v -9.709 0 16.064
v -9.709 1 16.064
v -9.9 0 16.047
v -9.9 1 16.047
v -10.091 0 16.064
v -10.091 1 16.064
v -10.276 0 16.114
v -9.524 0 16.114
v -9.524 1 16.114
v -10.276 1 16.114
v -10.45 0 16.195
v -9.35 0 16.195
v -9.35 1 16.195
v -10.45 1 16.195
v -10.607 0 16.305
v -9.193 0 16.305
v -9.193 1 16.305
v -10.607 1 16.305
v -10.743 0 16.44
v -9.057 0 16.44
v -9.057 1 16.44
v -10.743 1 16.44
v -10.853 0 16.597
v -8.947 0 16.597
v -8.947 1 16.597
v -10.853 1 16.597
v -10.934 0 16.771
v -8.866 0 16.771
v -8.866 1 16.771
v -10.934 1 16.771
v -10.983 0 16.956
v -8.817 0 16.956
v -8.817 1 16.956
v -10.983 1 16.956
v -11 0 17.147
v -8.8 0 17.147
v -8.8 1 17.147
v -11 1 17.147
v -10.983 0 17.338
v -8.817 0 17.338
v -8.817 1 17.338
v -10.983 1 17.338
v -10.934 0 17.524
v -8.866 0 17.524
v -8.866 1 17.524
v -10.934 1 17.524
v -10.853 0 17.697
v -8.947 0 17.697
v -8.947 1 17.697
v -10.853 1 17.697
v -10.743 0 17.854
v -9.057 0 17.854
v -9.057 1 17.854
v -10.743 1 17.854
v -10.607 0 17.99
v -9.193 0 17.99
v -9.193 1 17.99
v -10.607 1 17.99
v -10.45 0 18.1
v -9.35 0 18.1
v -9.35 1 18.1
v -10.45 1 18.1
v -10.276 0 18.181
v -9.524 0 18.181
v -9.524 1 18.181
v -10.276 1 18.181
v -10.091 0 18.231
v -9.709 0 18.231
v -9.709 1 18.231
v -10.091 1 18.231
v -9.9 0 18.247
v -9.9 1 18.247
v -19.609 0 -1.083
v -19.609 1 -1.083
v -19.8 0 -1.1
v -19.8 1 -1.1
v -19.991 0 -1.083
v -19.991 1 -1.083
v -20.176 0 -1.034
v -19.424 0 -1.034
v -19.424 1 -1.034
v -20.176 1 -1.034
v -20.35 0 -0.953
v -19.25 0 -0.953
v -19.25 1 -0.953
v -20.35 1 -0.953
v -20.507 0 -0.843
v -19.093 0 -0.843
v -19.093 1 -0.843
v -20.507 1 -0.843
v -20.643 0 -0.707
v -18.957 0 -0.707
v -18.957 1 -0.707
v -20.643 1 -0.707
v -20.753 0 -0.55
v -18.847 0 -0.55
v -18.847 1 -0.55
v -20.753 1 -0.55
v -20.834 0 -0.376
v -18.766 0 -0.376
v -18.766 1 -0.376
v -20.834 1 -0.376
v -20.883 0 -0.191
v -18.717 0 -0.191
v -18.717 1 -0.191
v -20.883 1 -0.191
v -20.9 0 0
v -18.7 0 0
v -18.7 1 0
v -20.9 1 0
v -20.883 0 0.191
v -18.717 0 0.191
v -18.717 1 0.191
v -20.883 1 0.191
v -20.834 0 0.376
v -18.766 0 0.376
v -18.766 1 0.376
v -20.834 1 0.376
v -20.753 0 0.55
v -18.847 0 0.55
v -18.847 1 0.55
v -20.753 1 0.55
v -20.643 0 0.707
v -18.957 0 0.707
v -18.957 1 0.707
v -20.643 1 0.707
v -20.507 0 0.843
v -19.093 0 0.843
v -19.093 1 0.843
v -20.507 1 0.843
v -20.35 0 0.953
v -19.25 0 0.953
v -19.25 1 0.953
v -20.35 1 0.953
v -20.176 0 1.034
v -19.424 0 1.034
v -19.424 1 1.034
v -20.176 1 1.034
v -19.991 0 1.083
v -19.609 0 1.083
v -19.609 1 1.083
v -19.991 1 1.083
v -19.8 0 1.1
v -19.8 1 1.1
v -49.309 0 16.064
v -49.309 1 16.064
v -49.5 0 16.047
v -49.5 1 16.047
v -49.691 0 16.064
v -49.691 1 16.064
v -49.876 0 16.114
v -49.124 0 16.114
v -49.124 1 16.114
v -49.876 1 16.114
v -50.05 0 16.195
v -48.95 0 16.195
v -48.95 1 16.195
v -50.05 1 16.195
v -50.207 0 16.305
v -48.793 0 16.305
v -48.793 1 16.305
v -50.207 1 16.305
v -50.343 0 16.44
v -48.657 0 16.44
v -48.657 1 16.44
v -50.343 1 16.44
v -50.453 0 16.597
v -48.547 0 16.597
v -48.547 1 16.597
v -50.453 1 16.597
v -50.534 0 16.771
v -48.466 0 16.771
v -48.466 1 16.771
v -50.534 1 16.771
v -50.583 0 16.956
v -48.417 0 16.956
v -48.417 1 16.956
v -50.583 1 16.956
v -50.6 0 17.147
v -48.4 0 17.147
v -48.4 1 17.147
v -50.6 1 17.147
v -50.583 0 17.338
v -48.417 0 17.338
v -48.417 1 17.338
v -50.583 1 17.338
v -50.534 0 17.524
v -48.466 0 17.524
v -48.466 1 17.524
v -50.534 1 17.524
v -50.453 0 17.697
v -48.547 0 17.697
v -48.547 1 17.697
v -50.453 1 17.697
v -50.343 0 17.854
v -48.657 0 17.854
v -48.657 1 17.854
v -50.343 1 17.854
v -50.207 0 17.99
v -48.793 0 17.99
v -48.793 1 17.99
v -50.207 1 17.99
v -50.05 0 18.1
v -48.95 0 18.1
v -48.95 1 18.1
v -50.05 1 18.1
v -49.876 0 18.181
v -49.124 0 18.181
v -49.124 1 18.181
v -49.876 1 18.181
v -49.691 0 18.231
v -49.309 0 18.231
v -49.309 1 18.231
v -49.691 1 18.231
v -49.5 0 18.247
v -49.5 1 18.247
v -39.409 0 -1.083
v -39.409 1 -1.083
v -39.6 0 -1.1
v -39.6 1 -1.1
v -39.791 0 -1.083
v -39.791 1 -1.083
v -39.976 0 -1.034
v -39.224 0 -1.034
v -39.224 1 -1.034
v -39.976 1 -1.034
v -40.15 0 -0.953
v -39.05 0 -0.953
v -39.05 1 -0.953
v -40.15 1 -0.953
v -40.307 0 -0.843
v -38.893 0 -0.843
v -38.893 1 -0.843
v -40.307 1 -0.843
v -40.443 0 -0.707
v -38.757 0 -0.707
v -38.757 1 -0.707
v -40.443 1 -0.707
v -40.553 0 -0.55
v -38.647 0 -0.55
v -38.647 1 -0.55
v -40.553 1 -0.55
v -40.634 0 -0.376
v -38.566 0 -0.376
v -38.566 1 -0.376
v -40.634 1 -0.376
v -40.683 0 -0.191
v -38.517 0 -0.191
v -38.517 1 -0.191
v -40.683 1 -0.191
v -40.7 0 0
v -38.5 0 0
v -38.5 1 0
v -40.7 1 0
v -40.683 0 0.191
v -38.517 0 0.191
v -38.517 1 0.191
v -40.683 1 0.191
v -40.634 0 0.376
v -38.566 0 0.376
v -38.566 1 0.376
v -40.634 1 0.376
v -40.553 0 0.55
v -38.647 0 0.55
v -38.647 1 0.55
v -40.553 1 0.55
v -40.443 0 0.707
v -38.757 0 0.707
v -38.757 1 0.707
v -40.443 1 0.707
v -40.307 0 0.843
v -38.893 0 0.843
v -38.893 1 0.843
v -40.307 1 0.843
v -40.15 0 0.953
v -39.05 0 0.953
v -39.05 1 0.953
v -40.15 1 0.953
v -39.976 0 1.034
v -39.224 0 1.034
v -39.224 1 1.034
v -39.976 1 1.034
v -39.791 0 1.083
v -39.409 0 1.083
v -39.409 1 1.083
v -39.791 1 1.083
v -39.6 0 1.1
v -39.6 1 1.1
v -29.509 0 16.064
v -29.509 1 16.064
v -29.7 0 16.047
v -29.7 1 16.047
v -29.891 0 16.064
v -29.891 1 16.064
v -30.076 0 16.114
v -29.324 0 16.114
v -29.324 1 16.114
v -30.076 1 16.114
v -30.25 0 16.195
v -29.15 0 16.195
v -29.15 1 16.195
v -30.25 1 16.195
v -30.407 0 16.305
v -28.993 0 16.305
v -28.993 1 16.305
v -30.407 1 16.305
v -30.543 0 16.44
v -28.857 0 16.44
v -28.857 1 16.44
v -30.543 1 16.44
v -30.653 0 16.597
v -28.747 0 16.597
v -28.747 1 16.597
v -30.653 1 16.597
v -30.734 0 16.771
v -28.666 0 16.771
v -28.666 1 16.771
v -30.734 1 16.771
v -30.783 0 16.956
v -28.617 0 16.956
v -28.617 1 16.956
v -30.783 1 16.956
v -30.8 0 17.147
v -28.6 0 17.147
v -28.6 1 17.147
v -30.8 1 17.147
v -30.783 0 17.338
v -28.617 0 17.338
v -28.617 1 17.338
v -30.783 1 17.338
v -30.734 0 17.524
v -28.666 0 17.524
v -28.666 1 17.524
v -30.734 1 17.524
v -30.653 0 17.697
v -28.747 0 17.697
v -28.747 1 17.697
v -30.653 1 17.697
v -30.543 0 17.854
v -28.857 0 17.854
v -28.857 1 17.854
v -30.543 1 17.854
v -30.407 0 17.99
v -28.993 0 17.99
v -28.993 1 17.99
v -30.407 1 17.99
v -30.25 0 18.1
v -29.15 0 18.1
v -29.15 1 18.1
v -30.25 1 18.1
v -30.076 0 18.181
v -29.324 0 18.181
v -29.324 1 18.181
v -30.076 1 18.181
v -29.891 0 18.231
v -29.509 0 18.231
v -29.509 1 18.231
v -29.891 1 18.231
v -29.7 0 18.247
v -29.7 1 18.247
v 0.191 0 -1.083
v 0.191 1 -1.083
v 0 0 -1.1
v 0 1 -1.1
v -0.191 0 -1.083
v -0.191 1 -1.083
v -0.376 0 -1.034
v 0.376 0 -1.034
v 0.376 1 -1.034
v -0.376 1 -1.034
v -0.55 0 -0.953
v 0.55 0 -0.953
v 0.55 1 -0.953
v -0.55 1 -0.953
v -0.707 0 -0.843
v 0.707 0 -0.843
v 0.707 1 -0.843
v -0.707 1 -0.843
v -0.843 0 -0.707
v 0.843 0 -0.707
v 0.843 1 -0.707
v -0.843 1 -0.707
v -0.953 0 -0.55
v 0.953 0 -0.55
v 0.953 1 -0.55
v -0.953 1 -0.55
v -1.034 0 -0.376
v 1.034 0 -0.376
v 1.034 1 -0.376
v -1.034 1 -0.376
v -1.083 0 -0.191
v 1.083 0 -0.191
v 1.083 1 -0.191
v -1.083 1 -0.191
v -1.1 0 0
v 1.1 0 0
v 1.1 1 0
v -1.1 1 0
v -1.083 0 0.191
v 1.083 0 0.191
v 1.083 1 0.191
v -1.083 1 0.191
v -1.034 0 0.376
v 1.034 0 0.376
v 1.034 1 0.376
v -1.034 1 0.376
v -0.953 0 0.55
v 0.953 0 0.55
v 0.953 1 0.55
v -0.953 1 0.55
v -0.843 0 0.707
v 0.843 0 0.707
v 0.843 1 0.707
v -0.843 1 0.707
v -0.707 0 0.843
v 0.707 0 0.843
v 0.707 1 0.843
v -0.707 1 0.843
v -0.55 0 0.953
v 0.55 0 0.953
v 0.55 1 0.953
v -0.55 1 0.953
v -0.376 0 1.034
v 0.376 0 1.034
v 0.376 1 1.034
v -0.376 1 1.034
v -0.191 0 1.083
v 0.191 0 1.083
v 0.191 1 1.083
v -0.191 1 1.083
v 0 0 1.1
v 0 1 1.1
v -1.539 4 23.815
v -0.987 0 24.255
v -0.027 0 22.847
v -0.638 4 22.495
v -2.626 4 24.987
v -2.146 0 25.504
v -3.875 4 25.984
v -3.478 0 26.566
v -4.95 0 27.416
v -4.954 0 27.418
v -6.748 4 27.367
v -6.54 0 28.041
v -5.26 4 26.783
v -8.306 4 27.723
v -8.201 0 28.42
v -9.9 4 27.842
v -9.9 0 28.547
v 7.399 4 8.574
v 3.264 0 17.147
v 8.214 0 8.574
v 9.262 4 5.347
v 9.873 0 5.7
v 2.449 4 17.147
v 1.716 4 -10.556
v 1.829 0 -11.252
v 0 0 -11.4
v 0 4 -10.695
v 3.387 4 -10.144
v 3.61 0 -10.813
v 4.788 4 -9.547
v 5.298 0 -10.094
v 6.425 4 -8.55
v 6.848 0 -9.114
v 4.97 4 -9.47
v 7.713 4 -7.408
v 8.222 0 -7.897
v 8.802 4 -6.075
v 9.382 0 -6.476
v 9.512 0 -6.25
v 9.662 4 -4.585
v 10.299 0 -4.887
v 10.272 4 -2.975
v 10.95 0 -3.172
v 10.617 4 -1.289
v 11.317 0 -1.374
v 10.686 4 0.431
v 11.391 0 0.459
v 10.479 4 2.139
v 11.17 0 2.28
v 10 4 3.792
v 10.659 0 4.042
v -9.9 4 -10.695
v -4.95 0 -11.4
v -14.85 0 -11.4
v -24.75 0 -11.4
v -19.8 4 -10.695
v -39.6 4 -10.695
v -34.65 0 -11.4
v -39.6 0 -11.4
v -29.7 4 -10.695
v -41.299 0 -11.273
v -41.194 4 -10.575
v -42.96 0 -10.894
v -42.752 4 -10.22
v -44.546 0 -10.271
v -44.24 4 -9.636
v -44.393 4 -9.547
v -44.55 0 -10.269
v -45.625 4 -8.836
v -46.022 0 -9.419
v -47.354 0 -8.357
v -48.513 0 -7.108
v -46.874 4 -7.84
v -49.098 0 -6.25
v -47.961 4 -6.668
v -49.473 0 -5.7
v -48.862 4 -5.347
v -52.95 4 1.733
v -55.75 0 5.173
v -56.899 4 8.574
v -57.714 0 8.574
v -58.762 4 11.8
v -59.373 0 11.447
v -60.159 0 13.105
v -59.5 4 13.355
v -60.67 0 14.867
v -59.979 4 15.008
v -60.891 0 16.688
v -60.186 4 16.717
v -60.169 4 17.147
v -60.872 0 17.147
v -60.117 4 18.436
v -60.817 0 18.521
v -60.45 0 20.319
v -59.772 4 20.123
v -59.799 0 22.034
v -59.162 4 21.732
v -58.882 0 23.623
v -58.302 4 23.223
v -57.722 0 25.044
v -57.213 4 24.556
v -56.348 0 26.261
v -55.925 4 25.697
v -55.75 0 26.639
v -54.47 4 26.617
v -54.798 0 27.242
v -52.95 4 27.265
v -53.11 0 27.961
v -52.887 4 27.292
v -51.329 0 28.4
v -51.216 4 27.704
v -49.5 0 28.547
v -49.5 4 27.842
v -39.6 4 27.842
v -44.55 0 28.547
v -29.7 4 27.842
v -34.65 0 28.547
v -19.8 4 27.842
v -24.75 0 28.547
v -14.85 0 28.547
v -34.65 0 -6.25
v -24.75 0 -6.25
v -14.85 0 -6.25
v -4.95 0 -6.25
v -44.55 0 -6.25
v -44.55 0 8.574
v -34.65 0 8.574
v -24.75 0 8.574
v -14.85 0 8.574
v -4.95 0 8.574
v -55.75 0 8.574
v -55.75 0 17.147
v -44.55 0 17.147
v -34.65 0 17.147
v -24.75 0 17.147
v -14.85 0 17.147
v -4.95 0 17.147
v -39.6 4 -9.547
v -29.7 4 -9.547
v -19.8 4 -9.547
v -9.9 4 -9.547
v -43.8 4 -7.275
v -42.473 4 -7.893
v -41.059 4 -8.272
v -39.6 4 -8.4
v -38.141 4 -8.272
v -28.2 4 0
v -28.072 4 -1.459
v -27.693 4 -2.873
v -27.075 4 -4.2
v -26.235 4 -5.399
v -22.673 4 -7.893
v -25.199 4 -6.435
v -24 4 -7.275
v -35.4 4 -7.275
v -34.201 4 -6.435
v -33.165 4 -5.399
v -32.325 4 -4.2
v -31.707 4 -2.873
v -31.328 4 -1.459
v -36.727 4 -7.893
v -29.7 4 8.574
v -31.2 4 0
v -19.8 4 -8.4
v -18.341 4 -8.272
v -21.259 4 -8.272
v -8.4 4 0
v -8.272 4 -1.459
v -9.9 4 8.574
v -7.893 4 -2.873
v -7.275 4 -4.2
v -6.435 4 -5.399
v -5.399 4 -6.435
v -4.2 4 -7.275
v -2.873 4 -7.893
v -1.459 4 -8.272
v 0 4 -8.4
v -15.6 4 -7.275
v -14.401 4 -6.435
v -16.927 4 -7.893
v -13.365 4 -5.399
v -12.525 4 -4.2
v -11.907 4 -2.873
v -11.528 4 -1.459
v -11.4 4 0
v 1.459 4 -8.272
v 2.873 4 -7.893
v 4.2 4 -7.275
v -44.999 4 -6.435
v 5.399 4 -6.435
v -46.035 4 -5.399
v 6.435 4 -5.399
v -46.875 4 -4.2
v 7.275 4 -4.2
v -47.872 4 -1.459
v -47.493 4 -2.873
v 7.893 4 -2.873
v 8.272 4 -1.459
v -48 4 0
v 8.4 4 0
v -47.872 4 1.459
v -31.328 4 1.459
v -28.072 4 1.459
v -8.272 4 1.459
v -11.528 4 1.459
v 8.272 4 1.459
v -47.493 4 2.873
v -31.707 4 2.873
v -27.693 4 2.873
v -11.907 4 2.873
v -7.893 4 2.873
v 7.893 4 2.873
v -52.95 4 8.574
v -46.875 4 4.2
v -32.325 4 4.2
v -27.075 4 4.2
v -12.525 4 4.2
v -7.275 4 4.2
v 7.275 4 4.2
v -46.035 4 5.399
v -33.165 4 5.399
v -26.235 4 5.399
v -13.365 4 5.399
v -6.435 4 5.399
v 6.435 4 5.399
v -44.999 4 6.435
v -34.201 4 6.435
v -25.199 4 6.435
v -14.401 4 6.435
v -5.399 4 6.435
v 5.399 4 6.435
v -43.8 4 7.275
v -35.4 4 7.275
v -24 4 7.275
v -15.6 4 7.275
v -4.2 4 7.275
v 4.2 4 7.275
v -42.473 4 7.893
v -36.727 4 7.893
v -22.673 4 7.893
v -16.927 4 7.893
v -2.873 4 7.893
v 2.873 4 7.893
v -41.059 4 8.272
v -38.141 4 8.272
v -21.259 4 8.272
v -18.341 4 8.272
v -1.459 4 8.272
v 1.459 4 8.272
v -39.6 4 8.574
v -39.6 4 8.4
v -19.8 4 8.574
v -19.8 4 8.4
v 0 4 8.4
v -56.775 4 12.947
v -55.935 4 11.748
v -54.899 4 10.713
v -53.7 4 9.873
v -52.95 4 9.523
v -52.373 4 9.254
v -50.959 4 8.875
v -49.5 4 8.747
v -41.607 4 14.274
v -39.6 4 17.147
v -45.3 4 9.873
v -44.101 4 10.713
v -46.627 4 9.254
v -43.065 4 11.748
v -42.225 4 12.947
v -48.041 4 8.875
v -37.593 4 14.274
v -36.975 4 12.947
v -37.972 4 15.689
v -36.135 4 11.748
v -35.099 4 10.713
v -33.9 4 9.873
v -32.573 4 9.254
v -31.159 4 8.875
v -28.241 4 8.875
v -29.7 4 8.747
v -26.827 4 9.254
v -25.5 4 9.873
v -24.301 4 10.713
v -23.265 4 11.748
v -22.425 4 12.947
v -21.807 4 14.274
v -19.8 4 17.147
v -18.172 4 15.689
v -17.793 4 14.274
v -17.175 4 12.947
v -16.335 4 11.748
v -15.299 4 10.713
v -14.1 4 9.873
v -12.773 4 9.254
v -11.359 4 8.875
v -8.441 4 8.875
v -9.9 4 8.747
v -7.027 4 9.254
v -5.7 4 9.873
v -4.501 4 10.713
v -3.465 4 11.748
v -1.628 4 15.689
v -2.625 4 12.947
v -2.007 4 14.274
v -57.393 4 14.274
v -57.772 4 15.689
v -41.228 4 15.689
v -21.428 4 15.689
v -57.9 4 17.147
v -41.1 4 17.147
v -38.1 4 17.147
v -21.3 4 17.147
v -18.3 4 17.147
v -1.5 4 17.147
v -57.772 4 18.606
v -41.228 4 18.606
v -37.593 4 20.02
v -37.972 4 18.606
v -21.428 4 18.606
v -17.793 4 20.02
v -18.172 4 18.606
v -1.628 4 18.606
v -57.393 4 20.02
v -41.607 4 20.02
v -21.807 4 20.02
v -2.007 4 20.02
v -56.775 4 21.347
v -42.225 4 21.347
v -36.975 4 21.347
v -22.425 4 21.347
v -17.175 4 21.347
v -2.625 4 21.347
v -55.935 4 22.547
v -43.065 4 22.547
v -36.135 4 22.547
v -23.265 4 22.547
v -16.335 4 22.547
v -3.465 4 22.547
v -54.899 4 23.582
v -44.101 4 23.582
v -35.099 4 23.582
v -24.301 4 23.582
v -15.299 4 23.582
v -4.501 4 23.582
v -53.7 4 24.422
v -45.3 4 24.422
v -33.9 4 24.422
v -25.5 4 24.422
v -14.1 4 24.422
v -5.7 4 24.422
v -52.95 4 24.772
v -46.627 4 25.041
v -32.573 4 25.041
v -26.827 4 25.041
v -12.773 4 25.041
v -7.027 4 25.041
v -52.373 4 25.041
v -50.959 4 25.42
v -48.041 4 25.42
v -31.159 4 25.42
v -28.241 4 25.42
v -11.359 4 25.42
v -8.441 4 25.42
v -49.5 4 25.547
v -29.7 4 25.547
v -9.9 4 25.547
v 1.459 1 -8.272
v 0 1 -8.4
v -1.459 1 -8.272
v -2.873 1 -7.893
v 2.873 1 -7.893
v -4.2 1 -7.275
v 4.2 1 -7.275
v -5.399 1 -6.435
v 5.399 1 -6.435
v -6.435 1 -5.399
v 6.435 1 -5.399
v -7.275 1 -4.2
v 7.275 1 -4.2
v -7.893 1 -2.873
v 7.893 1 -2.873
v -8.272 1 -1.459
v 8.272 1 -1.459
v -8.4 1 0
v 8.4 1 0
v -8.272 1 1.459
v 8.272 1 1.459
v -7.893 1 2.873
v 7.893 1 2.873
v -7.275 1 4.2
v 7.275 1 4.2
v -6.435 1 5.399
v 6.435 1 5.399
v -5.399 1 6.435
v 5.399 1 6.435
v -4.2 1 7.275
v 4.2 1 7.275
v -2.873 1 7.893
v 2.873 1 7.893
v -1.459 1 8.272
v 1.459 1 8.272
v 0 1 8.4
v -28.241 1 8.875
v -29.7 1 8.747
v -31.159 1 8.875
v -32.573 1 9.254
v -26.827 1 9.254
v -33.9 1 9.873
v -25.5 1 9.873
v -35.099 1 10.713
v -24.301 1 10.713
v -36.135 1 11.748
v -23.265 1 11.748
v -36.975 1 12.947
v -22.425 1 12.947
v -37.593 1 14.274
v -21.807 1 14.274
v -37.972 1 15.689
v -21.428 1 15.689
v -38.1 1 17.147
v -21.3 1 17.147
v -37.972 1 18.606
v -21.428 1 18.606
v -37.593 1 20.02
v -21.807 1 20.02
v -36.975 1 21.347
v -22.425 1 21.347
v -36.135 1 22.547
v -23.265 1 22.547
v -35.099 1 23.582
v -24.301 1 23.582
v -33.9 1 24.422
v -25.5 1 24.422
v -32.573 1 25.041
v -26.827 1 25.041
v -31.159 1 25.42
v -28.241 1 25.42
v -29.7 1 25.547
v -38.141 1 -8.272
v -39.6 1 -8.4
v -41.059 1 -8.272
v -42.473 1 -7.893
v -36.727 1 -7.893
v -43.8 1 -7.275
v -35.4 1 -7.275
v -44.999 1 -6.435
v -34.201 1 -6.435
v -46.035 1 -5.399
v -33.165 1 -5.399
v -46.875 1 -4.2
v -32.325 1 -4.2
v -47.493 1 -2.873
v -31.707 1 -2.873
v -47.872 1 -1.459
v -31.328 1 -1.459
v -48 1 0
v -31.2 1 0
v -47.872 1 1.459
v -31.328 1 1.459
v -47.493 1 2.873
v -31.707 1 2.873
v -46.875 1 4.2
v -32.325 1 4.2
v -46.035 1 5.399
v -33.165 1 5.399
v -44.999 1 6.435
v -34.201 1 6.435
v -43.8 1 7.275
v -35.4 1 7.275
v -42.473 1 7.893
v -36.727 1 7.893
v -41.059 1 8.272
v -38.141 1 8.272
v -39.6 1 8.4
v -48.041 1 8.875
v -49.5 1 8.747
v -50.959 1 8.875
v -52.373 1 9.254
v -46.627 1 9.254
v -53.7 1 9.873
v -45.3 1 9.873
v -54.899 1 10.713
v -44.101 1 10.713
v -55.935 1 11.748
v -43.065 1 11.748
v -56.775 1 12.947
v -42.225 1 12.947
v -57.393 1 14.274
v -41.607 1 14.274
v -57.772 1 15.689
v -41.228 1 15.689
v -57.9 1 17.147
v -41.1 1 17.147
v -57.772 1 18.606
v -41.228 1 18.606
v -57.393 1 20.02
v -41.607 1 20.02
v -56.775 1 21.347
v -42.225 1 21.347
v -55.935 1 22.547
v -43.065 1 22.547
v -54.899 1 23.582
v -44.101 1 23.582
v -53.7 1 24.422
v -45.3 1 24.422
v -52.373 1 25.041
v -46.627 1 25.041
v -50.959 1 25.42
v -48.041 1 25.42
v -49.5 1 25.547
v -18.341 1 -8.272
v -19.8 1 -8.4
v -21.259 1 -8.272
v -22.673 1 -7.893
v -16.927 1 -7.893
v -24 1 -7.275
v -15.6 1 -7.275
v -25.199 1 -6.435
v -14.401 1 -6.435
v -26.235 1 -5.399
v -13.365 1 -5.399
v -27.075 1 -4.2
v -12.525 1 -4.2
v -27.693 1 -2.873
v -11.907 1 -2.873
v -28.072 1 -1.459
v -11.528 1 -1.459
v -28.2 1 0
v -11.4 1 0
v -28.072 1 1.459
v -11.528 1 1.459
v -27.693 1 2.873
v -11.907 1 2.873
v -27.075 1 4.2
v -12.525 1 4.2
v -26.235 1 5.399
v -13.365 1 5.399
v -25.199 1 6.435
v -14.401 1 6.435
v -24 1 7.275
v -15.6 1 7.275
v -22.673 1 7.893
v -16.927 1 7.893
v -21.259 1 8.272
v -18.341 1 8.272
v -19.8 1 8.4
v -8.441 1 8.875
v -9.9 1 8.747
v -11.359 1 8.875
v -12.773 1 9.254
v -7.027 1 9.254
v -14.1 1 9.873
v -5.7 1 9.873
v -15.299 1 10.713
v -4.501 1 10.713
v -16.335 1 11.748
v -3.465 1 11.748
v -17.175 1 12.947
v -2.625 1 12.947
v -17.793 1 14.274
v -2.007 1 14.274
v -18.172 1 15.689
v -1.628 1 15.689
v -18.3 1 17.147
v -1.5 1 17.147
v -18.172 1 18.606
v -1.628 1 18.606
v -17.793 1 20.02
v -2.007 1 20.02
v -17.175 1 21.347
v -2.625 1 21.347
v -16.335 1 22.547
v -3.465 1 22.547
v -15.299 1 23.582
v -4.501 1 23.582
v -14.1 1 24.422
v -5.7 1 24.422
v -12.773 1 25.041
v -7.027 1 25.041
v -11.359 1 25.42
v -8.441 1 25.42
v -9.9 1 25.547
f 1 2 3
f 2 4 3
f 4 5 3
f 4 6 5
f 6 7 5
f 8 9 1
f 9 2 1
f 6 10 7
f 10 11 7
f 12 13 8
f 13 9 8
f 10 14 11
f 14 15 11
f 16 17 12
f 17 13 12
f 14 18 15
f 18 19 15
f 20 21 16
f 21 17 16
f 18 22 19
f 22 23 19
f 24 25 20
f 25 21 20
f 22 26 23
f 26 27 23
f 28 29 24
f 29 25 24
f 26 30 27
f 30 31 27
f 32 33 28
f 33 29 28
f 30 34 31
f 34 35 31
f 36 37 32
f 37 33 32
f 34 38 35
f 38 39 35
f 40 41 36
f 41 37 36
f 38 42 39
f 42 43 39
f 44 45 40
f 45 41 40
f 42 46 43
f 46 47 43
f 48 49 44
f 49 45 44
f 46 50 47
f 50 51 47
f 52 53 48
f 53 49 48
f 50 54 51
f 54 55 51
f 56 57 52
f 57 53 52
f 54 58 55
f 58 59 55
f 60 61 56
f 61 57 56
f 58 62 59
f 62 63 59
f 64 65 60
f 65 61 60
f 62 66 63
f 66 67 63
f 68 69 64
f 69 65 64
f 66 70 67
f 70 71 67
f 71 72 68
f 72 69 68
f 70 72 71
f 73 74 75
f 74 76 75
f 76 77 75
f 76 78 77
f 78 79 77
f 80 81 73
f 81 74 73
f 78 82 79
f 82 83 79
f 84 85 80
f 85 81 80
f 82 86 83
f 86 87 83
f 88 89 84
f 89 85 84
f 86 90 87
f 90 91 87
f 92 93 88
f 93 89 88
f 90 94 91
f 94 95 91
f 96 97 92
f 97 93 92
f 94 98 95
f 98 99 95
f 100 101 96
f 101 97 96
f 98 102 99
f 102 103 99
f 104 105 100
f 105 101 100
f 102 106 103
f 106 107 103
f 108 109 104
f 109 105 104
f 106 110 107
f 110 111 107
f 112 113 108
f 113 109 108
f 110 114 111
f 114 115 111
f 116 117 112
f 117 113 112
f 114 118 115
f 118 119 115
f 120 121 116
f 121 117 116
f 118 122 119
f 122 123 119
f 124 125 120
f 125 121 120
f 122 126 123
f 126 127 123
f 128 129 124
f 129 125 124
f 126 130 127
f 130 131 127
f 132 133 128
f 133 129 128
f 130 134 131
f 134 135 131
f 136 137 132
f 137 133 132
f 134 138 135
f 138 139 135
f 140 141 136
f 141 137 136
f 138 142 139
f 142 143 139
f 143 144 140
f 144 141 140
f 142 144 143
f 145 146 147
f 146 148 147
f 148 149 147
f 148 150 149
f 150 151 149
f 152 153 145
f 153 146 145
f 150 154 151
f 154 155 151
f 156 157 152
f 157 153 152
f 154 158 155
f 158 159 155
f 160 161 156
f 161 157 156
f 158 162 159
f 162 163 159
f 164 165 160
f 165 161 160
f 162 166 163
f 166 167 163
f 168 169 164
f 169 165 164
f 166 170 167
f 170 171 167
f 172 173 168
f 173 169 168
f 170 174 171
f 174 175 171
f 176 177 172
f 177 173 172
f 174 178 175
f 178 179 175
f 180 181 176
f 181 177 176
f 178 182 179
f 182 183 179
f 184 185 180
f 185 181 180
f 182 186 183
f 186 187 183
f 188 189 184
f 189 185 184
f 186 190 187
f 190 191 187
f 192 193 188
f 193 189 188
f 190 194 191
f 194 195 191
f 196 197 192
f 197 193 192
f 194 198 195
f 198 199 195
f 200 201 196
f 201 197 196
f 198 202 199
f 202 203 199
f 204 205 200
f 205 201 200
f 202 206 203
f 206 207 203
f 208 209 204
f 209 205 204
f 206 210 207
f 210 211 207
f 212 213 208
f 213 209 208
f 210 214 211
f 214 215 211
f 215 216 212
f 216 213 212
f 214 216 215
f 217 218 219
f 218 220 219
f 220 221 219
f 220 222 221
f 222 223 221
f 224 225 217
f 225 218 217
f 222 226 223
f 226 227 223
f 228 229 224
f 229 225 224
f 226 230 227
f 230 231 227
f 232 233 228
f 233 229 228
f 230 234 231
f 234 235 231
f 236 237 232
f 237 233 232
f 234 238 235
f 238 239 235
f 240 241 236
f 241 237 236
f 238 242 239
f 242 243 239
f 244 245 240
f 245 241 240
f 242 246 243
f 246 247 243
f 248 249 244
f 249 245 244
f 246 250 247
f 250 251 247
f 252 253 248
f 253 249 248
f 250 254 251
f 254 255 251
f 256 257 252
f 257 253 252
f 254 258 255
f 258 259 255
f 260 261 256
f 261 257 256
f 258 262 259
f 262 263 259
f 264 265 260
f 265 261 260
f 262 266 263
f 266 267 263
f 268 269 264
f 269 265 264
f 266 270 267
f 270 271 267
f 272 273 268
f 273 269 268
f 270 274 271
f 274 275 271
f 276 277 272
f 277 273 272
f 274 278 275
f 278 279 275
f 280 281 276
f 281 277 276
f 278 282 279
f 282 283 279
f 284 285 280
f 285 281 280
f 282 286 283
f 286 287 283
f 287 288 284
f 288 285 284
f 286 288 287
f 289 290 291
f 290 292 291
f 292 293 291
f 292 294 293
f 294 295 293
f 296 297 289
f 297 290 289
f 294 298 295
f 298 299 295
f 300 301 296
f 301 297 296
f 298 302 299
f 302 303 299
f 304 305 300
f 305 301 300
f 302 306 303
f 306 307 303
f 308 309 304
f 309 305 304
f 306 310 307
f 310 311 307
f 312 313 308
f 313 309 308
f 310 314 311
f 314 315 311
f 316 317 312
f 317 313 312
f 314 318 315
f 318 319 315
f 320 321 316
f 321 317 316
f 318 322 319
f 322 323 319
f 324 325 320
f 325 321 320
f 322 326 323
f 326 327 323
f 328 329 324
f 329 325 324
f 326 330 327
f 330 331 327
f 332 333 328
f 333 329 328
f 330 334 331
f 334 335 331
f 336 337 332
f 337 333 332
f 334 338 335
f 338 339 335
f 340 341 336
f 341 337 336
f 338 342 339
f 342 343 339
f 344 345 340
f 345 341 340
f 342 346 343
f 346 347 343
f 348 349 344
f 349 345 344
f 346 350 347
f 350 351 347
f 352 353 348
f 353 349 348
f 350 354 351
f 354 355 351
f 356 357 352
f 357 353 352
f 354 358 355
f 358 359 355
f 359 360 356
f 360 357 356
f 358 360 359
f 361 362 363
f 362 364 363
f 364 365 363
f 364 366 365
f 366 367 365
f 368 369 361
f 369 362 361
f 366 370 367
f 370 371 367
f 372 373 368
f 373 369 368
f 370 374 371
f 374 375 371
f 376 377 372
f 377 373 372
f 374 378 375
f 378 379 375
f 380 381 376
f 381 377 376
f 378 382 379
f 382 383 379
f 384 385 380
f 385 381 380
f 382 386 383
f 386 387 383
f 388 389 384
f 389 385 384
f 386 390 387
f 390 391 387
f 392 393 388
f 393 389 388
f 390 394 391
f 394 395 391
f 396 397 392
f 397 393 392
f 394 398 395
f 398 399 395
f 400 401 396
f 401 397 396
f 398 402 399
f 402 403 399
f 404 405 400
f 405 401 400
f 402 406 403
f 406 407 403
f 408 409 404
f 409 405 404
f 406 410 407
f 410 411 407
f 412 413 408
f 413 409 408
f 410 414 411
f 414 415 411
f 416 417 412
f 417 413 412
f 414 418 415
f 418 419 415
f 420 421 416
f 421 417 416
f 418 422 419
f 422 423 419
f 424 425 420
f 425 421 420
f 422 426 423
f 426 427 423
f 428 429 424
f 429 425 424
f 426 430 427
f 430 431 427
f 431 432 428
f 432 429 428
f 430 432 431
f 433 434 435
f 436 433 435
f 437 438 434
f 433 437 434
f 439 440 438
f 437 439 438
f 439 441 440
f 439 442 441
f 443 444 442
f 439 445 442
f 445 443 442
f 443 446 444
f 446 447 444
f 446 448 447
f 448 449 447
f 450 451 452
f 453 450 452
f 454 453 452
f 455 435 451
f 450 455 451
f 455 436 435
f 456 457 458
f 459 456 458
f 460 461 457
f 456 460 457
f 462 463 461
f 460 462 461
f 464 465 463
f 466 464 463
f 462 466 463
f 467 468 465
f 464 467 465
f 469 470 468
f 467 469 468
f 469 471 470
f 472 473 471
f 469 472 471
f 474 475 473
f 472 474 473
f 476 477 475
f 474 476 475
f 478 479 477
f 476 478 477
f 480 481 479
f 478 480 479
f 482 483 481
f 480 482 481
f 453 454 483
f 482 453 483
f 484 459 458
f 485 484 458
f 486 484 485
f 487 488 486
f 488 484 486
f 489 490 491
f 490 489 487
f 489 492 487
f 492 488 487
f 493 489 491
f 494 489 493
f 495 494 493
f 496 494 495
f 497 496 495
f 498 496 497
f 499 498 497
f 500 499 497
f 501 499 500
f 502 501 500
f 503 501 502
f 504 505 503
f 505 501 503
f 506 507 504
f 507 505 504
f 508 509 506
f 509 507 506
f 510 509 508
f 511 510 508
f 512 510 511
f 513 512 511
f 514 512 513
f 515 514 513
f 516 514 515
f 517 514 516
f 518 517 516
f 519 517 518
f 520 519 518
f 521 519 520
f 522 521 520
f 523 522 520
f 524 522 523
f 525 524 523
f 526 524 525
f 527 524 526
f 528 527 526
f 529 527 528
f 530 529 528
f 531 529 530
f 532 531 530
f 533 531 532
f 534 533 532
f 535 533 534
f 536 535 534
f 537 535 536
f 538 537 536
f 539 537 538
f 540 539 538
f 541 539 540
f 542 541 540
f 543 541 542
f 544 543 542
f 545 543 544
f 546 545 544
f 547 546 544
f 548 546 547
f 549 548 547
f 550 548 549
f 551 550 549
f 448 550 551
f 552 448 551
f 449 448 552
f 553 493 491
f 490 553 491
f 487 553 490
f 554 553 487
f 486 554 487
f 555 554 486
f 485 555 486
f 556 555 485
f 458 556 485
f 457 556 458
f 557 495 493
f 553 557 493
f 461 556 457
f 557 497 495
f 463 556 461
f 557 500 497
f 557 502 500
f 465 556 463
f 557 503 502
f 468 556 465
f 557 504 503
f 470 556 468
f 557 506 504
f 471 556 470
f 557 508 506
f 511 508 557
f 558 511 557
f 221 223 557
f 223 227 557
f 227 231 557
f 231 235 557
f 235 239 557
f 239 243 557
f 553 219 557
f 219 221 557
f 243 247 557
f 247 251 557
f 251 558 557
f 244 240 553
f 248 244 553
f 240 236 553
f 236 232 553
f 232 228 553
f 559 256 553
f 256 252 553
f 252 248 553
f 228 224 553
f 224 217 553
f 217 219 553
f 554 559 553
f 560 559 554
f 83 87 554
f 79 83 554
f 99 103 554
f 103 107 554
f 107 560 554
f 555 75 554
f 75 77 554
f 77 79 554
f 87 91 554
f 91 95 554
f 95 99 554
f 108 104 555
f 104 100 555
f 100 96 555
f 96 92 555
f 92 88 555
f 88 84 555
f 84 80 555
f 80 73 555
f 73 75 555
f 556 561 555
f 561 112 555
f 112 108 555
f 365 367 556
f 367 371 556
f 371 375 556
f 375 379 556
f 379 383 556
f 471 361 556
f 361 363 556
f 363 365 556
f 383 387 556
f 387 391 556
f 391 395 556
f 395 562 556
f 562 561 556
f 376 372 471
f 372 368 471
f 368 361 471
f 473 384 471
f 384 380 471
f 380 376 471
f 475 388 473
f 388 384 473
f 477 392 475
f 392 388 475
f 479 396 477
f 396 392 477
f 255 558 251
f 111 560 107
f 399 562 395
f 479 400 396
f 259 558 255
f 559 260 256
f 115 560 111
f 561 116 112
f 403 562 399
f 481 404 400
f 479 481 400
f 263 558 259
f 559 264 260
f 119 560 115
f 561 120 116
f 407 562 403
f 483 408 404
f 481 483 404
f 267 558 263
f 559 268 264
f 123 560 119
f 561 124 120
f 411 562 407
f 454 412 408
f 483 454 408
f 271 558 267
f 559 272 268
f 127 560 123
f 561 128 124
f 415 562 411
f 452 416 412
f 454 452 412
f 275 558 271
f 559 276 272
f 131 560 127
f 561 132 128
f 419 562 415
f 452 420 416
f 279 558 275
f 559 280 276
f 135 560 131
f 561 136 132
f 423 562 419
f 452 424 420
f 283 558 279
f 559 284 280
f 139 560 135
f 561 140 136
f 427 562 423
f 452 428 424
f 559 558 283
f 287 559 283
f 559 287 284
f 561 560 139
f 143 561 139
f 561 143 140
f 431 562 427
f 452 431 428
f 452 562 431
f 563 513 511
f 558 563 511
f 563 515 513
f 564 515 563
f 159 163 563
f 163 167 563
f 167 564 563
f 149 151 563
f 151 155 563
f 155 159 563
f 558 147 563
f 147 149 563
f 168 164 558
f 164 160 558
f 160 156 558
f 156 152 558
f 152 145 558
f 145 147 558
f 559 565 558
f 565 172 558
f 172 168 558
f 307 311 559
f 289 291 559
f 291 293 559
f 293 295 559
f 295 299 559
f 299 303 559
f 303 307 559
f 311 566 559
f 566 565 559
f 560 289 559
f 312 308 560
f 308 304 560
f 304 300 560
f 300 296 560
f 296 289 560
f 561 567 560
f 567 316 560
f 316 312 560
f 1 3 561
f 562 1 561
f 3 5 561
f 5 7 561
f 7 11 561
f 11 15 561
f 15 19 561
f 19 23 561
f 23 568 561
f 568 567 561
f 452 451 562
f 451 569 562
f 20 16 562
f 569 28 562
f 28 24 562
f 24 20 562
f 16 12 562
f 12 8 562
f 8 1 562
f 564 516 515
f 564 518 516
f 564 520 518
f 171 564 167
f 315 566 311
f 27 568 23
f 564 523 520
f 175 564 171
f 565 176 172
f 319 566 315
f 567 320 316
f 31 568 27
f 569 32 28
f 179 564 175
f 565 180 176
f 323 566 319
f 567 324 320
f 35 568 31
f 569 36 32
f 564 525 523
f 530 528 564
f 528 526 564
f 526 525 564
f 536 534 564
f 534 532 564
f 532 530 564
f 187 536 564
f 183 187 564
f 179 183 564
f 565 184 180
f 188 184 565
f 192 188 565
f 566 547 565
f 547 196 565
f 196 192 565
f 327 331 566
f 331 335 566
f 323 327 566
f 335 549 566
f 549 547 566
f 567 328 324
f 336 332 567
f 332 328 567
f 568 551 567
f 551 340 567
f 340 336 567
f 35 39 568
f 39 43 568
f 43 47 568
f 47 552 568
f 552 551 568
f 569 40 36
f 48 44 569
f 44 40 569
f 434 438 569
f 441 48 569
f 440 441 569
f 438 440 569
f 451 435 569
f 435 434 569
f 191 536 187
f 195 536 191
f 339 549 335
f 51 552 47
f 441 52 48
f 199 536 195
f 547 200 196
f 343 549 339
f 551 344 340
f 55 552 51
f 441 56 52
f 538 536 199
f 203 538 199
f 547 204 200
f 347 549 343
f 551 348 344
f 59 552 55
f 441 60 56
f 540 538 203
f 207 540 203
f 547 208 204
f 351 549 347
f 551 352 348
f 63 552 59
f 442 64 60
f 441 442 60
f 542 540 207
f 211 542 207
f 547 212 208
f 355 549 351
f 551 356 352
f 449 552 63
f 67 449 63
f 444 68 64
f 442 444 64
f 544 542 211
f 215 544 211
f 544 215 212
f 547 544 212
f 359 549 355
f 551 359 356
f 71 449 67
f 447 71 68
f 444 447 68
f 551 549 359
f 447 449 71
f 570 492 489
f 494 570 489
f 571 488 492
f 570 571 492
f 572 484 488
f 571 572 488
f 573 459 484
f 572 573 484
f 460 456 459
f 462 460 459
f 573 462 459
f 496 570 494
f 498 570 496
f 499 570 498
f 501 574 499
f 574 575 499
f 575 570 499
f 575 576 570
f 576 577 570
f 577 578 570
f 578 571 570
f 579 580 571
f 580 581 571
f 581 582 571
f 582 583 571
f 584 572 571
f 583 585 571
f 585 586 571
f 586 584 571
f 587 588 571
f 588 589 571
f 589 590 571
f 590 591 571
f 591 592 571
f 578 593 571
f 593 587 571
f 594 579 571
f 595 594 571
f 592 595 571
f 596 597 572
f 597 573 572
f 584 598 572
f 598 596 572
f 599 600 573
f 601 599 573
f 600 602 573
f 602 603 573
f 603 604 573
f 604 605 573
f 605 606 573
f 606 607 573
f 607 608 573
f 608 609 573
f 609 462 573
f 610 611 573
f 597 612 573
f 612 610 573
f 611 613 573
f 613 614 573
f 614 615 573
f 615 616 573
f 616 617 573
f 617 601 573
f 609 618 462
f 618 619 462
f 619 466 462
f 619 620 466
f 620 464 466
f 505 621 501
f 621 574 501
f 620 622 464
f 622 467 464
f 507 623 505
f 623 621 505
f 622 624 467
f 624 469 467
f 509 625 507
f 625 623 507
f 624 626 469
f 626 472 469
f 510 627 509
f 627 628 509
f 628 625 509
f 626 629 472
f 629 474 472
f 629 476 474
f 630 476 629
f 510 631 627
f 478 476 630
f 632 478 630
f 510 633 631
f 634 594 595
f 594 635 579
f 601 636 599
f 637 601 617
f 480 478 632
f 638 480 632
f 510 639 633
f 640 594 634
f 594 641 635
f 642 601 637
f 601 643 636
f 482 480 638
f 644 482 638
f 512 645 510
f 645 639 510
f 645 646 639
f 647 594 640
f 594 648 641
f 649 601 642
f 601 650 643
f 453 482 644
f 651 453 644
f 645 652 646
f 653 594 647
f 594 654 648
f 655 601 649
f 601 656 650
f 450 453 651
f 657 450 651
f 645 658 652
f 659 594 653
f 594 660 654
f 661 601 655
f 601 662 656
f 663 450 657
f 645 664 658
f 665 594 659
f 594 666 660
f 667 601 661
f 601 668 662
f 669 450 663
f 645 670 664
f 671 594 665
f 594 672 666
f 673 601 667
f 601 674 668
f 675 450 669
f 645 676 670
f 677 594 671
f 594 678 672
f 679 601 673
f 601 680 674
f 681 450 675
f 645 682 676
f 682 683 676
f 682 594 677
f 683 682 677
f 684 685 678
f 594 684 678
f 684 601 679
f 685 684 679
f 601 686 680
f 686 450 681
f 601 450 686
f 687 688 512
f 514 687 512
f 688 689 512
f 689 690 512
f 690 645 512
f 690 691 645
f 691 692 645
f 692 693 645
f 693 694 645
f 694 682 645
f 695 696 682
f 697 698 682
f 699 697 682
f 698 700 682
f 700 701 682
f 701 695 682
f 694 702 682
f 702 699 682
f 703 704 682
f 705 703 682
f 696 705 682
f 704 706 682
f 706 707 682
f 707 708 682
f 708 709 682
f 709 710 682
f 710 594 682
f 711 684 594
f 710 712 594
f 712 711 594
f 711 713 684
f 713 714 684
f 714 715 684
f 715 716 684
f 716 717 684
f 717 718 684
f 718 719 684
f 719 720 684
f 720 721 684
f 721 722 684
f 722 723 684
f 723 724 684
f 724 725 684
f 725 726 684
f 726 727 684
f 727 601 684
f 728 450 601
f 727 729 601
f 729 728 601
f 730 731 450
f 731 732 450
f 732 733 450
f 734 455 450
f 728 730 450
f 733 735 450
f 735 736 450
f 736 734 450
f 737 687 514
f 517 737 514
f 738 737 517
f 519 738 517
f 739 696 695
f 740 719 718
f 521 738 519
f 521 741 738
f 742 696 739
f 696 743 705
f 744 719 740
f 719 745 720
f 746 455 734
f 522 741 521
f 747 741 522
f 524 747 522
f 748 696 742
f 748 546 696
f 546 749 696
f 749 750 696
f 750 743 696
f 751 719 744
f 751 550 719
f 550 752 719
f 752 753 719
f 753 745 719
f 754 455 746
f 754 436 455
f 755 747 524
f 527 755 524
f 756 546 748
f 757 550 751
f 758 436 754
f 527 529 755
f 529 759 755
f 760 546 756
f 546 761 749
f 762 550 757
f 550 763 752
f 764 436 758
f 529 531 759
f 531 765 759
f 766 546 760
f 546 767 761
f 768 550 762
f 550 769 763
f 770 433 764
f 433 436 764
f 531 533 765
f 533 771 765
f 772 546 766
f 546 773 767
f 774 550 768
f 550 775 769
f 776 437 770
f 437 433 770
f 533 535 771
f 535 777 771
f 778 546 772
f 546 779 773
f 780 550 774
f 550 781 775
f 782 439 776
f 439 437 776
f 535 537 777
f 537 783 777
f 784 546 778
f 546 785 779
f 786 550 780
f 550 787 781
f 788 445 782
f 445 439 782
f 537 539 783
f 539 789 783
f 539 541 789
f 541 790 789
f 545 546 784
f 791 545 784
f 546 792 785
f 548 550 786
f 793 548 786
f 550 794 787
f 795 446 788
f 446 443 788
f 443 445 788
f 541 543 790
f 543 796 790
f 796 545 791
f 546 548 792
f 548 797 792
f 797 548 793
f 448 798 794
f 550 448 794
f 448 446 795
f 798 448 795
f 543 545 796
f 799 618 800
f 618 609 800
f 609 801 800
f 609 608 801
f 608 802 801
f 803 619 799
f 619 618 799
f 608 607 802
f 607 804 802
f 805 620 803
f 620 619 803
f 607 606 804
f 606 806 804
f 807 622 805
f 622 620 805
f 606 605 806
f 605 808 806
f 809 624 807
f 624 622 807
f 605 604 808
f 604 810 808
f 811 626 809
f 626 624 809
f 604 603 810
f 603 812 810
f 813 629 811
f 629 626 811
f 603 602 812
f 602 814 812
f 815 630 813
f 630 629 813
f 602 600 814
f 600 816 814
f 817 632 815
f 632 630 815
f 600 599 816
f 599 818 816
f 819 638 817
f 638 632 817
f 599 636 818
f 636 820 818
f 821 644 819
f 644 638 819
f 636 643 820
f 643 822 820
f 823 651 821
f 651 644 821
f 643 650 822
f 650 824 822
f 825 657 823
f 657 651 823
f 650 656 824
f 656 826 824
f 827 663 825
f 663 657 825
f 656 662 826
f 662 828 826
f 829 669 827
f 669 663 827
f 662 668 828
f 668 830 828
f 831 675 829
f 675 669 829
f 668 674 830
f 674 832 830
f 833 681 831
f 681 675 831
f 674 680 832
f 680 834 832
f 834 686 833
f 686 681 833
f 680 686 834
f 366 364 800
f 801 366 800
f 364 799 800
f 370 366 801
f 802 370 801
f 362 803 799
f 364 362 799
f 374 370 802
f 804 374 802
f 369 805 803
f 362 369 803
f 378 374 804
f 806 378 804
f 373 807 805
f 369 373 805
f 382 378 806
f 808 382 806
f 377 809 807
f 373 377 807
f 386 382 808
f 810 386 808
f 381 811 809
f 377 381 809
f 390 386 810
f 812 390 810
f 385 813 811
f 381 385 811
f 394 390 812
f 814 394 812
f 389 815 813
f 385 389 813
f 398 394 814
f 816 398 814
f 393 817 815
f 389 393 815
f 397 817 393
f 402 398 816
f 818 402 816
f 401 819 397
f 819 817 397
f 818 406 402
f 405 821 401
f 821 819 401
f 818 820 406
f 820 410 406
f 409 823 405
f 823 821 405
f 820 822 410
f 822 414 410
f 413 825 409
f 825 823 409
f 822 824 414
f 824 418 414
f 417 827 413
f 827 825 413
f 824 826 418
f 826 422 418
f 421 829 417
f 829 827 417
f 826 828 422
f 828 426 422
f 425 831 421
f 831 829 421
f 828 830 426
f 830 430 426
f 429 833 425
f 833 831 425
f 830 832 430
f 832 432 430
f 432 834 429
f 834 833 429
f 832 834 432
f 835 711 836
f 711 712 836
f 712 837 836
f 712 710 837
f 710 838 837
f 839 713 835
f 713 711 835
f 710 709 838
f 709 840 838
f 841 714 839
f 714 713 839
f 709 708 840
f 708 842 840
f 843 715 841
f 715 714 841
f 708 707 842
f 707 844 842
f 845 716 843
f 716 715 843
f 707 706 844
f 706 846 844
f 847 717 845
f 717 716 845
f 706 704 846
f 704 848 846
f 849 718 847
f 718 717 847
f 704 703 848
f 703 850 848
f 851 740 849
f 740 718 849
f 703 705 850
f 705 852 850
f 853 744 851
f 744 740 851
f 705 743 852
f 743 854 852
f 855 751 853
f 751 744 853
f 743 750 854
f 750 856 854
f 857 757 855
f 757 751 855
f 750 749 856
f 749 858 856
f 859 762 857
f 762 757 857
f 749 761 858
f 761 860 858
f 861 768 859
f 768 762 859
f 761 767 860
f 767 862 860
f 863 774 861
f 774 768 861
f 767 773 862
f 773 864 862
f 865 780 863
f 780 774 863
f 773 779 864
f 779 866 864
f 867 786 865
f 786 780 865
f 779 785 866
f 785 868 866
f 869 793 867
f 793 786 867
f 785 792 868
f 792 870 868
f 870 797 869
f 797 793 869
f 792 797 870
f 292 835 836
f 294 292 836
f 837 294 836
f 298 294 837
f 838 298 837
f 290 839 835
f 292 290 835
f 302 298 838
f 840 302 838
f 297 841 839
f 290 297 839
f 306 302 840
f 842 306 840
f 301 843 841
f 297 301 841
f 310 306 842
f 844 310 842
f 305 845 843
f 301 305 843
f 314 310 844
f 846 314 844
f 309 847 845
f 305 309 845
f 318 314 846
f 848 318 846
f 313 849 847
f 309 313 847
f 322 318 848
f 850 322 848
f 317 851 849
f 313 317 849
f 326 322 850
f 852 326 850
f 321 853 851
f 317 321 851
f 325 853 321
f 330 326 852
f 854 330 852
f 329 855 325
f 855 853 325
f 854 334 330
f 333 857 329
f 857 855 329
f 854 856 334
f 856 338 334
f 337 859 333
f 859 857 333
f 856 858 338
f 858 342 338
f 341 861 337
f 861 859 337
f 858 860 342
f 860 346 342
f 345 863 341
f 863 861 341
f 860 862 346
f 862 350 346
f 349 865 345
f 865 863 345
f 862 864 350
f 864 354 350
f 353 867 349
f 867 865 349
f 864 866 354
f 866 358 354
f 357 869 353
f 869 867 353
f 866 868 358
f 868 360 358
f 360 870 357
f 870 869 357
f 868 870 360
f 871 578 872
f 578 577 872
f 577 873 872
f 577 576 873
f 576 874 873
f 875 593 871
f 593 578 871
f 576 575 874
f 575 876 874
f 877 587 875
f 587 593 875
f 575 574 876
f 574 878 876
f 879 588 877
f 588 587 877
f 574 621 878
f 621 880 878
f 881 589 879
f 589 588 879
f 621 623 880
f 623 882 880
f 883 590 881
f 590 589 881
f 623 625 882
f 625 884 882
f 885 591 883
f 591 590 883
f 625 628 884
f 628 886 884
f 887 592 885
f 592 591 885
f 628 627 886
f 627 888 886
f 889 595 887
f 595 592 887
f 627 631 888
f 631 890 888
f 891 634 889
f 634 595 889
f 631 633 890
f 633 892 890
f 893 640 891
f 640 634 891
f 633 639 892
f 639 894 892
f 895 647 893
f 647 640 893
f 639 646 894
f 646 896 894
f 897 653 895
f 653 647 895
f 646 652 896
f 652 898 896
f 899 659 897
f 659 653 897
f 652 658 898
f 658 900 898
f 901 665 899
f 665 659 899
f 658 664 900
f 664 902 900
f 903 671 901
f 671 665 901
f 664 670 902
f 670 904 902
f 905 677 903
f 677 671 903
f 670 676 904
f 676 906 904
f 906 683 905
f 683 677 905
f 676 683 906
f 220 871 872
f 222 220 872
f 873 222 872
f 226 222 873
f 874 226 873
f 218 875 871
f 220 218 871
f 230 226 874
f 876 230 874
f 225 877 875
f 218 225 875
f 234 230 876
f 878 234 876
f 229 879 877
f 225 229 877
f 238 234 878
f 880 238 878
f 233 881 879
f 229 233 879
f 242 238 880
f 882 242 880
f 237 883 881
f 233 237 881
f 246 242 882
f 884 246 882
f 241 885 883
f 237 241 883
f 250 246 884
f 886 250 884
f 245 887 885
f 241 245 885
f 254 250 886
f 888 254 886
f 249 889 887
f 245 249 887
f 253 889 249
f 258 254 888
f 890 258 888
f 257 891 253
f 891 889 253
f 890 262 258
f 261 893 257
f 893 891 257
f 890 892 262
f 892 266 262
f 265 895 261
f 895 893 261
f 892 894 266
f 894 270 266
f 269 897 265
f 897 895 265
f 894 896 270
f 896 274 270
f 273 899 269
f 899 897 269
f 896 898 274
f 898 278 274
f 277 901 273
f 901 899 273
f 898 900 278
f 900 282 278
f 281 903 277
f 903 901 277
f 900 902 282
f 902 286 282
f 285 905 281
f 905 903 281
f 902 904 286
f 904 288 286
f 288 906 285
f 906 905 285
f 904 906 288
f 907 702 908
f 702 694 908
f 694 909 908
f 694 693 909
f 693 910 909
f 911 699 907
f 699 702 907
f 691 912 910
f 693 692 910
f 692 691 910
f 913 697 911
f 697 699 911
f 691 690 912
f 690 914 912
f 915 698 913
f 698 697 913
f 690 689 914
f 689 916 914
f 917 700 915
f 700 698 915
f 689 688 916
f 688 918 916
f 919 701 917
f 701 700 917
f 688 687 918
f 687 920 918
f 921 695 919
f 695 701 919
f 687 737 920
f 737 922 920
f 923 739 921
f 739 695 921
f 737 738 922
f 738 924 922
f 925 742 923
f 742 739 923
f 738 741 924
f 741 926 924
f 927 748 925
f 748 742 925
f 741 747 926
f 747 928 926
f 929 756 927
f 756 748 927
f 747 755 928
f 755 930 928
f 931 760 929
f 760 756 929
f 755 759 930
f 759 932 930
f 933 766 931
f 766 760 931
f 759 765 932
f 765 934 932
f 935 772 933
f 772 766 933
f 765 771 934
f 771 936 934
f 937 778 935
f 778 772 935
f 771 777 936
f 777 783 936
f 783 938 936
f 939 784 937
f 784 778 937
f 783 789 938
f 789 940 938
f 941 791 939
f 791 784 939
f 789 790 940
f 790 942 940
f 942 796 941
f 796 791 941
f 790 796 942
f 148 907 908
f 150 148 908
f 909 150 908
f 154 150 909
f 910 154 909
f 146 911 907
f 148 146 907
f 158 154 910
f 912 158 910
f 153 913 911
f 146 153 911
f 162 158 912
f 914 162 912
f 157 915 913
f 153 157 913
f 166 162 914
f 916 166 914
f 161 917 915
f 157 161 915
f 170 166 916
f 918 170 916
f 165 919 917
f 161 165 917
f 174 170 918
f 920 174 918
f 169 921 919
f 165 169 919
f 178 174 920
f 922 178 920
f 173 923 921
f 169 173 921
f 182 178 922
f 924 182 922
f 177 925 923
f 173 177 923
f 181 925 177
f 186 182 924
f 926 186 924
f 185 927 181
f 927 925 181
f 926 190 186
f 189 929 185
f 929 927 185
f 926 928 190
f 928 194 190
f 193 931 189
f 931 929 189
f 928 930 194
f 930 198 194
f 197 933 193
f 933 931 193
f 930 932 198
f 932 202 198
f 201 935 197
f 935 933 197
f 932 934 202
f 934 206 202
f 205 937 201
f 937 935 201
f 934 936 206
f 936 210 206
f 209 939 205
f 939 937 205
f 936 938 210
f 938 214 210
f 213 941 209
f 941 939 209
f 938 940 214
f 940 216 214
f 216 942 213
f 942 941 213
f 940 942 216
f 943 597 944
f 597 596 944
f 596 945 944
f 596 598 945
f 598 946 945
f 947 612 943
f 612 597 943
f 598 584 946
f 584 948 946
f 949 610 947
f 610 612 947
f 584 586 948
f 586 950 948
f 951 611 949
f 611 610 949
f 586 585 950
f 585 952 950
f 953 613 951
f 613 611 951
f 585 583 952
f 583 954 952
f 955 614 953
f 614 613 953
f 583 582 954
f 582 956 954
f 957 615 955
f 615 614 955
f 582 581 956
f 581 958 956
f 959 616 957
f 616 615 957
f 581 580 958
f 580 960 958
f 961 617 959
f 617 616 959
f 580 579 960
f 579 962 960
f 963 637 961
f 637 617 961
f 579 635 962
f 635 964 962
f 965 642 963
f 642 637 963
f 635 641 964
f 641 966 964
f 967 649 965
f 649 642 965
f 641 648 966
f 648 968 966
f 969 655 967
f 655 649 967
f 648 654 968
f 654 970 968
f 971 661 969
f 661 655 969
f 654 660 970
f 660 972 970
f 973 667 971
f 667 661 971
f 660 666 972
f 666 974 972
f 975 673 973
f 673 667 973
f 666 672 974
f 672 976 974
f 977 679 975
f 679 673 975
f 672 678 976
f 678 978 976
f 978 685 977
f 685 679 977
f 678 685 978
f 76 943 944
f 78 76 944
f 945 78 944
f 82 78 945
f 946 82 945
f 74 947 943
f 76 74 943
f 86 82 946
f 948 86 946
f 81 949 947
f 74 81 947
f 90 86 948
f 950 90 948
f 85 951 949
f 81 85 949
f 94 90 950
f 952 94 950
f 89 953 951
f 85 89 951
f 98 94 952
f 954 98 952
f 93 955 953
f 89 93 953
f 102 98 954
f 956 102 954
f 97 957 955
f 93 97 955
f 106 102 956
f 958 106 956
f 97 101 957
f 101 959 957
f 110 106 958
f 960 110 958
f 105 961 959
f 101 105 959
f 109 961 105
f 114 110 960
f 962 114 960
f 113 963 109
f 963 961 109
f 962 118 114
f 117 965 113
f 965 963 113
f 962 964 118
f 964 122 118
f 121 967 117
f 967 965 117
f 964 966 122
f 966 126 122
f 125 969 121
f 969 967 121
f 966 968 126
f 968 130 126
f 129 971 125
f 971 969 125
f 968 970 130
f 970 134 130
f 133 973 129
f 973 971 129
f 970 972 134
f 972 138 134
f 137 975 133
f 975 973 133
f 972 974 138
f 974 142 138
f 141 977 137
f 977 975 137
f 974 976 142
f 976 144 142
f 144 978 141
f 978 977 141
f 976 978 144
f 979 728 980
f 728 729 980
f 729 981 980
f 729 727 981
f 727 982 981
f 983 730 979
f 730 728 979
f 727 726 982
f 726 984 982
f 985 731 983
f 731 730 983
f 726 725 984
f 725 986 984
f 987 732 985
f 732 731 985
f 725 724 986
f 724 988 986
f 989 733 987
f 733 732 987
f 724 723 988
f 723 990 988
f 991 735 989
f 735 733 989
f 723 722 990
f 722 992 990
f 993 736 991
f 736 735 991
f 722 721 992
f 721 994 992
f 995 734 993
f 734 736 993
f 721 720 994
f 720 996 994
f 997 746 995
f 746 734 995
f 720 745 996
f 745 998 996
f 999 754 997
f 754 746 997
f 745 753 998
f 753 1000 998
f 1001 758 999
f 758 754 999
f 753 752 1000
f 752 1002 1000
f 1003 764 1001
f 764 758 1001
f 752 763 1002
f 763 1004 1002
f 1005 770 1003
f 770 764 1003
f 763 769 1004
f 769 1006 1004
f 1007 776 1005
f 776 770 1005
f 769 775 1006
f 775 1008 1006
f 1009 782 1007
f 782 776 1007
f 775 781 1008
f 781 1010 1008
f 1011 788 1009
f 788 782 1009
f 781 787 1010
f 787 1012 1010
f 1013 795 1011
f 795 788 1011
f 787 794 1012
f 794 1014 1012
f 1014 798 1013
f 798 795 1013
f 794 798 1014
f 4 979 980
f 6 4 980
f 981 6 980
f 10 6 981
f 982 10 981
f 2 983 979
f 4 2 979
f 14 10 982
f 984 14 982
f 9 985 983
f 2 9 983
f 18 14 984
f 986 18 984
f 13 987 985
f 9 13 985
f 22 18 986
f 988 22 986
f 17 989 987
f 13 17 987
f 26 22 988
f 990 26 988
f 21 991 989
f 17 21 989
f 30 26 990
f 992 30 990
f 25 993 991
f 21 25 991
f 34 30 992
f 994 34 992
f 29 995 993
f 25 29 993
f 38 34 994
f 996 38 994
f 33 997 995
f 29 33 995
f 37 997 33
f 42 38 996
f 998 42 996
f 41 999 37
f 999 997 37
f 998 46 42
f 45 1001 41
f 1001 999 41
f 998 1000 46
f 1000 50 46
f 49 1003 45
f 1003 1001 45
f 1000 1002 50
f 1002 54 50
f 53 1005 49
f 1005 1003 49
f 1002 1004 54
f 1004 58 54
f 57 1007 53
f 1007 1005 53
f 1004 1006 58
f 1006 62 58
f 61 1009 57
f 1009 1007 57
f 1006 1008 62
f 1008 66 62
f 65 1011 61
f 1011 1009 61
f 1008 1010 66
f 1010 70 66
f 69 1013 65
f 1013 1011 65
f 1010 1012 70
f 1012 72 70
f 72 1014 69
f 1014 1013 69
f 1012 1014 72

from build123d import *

# Parameters (mm, degrees)
BOSS_EXTRUDE1_DEPTH = 4
BOSS_EXTRUDE1_DRAFT = 10
CUT_EXTRUDE1_START  = 4
SKETCH1_3_R         = 1.1
CUT_EXTRUDE1_DEPTH  = 4
CUT_EXTRUDE2_START  = 4
SKETCH1_4_R         = 8.4
SKETCH1_4_R_2       = 1.1
CUT_EXTRUDE2_DEPTH  = 3


# Read off the part's stored shape, not the designer's step: Boss-Extrude1
with BuildPart() as part:
    # Boss-Extrude1 outline → Boss-Extrude1 (with draft: the straight prism first)
    with BuildSketch(Plane(origin=(0, 4, 0), x_dir=(1, 0, 0), z_dir=(0, 1, 0))):
        with BuildLine():
            ThreePointArc((-58.761875024, -11.799956956), (-58.761875024, -22.494649034), (-49.5, -27.841995072))
            Line((-49.5, -27.841995072), (-9.9, -27.841995072))
            ThreePointArc((-9.9, -27.841995072), (-4.552653961, -26.409178019), (-0.638124976, -22.494649034))
            Line((-0.638124976, -22.494649034), (9.261875024, -5.347346039))
            ThreePointArc((9.261875024, -5.347346039), (9.261875024, 5.347346039), (0, 10.694692077))
            Line((0, 10.694692077), (-39.6, 10.694692077))
            ThreePointArc((-39.6, 10.694692077), (-44.947346039, 9.261875024), (-48.861875024, 5.347346039))
            Line((-48.861875024, 5.347346039), (-58.761875024, -11.799956956))
        make_face()
    extrude(amount=-BOSS_EXTRUDE1_DEPTH)
    # Boss-Extrude1: the draft: its side faces are tilted about the plane it starts from
    boss_extrude1_sides = [part.faces().sort_by_distance(p)[0] for p in [
        (-53.811875024, 2, 3.226305459),
        (-58.761875024, 2, 22.494649033),
        (-29.7, 2, 27.841995072),
        (-4.552653962, 2, 26.409178019),
        (4.311875024, 2, 13.920997536),
        (9.261875024, 2, -5.347346038),
        (-19.8, 2, -10.694692077),
        (-44.947346038, 2, -9.261875024),
    ]]
    draft(boss_extrude1_sides, Plane(origin=(0, 4, 0), x_dir=(1, 0, 0), z_dir=(0, 1, 0)), BOSS_EXTRUDE1_DRAFT)

    # Sketch1<3> → Cut-Extrude1 (cut)
    with BuildSketch(Plane(origin=(0, 0, 0), x_dir=(1, 0, 0), z_dir=(0, 1, 0)).offset(CUT_EXTRUDE1_START)):
        with Locations(Location((-9.9, -17.147302995, 0), (0, 0, 270))):
            Circle(SKETCH1_3_R)
        with Locations(Location((0, 0, 0), (0, 0, 270))):
            Circle(SKETCH1_3_R)
        with Locations(Location((-29.7, -17.147302995, 0), (0, 0, 270))):
            Circle(SKETCH1_3_R)
        with Locations(Location((-39.6, 0, 0), (0, 0, 270))):
            Circle(SKETCH1_3_R)
        with Locations(Location((-49.5, -17.147302995, 0), (0, 0, 270))):
            Circle(SKETCH1_3_R)
        with Locations(Location((-19.8, 0, 0), (0, 0, 270))):
            Circle(SKETCH1_3_R)
    extrude(amount=-CUT_EXTRUDE1_DEPTH, mode=Mode.SUBTRACT)

    # Sketch1<4> → Cut-Extrude2 (cut)
    # profile 1 of 6: a face of its own
    with BuildSketch(Plane(origin=(0, 0, 0), x_dir=(1, 0, 0), z_dir=(0, 1, 0)).offset(CUT_EXTRUDE2_START)):
        with Locations(Location((-19.8, 0, 0), (0, 0, 270))):
            Circle(SKETCH1_4_R)
        with Locations(Location((-19.8, 0, 0), (0, 0, 270))):
            Circle(SKETCH1_4_R_2, mode=Mode.SUBTRACT)
    # profile 2 of 6: a face of its own
    with BuildSketch(Plane(origin=(0, 0, 0), x_dir=(1, 0, 0), z_dir=(0, 1, 0)).offset(CUT_EXTRUDE2_START)):
        with Locations(Location((-9.9, -17.147302995, 0), (0, 0, 270))):
            Circle(SKETCH1_4_R)
        with Locations(Location((-9.9, -17.147302995, 0), (0, 0, 270))):
            Circle(SKETCH1_4_R_2, mode=Mode.SUBTRACT)
    # profile 3 of 6: a face of its own
    with BuildSketch(Plane(origin=(0, 0, 0), x_dir=(1, 0, 0), z_dir=(0, 1, 0)).offset(CUT_EXTRUDE2_START)):
        with Locations(Location((0, 0, 0), (0, 0, 270))):
            Circle(SKETCH1_4_R)
        with Locations(Location((0, 0, 0), (0, 0, 270))):
            Circle(SKETCH1_4_R_2, mode=Mode.SUBTRACT)
    # profile 4 of 6: a face of its own
    with BuildSketch(Plane(origin=(0, 0, 0), x_dir=(1, 0, 0), z_dir=(0, 1, 0)).offset(CUT_EXTRUDE2_START)):
        with Locations(Location((-29.7, -17.147302995, 0), (0, 0, 270))):
            Circle(SKETCH1_4_R)
        with Locations(Location((-29.7, -17.147302995, 0), (0, 0, 270))):
            Circle(SKETCH1_4_R_2, mode=Mode.SUBTRACT)
    # profile 5 of 6: a face of its own
    with BuildSketch(Plane(origin=(0, 0, 0), x_dir=(1, 0, 0), z_dir=(0, 1, 0)).offset(CUT_EXTRUDE2_START)):
        with Locations(Location((-39.6, 0, 0), (0, 0, 270))):
            Circle(SKETCH1_4_R)
        with Locations(Location((-39.6, 0, 0), (0, 0, 270))):
            Circle(SKETCH1_4_R_2, mode=Mode.SUBTRACT)
    # profile 6 of 6: a face of its own
    with BuildSketch(Plane(origin=(0, 0, 0), x_dir=(1, 0, 0), z_dir=(0, 1, 0)).offset(CUT_EXTRUDE2_START)):
        with Locations(Location((-49.5, -17.147302995, 0), (0, 0, 270))):
            Circle(SKETCH1_4_R)
        with Locations(Location((-49.5, -17.147302995, 0), (0, 0, 270))):
            Circle(SKETCH1_4_R_2, mode=Mode.SUBTRACT)
    extrude(amount=-CUT_EXTRUDE2_DEPTH, mode=Mode.SUBTRACT)


solid = part.part
